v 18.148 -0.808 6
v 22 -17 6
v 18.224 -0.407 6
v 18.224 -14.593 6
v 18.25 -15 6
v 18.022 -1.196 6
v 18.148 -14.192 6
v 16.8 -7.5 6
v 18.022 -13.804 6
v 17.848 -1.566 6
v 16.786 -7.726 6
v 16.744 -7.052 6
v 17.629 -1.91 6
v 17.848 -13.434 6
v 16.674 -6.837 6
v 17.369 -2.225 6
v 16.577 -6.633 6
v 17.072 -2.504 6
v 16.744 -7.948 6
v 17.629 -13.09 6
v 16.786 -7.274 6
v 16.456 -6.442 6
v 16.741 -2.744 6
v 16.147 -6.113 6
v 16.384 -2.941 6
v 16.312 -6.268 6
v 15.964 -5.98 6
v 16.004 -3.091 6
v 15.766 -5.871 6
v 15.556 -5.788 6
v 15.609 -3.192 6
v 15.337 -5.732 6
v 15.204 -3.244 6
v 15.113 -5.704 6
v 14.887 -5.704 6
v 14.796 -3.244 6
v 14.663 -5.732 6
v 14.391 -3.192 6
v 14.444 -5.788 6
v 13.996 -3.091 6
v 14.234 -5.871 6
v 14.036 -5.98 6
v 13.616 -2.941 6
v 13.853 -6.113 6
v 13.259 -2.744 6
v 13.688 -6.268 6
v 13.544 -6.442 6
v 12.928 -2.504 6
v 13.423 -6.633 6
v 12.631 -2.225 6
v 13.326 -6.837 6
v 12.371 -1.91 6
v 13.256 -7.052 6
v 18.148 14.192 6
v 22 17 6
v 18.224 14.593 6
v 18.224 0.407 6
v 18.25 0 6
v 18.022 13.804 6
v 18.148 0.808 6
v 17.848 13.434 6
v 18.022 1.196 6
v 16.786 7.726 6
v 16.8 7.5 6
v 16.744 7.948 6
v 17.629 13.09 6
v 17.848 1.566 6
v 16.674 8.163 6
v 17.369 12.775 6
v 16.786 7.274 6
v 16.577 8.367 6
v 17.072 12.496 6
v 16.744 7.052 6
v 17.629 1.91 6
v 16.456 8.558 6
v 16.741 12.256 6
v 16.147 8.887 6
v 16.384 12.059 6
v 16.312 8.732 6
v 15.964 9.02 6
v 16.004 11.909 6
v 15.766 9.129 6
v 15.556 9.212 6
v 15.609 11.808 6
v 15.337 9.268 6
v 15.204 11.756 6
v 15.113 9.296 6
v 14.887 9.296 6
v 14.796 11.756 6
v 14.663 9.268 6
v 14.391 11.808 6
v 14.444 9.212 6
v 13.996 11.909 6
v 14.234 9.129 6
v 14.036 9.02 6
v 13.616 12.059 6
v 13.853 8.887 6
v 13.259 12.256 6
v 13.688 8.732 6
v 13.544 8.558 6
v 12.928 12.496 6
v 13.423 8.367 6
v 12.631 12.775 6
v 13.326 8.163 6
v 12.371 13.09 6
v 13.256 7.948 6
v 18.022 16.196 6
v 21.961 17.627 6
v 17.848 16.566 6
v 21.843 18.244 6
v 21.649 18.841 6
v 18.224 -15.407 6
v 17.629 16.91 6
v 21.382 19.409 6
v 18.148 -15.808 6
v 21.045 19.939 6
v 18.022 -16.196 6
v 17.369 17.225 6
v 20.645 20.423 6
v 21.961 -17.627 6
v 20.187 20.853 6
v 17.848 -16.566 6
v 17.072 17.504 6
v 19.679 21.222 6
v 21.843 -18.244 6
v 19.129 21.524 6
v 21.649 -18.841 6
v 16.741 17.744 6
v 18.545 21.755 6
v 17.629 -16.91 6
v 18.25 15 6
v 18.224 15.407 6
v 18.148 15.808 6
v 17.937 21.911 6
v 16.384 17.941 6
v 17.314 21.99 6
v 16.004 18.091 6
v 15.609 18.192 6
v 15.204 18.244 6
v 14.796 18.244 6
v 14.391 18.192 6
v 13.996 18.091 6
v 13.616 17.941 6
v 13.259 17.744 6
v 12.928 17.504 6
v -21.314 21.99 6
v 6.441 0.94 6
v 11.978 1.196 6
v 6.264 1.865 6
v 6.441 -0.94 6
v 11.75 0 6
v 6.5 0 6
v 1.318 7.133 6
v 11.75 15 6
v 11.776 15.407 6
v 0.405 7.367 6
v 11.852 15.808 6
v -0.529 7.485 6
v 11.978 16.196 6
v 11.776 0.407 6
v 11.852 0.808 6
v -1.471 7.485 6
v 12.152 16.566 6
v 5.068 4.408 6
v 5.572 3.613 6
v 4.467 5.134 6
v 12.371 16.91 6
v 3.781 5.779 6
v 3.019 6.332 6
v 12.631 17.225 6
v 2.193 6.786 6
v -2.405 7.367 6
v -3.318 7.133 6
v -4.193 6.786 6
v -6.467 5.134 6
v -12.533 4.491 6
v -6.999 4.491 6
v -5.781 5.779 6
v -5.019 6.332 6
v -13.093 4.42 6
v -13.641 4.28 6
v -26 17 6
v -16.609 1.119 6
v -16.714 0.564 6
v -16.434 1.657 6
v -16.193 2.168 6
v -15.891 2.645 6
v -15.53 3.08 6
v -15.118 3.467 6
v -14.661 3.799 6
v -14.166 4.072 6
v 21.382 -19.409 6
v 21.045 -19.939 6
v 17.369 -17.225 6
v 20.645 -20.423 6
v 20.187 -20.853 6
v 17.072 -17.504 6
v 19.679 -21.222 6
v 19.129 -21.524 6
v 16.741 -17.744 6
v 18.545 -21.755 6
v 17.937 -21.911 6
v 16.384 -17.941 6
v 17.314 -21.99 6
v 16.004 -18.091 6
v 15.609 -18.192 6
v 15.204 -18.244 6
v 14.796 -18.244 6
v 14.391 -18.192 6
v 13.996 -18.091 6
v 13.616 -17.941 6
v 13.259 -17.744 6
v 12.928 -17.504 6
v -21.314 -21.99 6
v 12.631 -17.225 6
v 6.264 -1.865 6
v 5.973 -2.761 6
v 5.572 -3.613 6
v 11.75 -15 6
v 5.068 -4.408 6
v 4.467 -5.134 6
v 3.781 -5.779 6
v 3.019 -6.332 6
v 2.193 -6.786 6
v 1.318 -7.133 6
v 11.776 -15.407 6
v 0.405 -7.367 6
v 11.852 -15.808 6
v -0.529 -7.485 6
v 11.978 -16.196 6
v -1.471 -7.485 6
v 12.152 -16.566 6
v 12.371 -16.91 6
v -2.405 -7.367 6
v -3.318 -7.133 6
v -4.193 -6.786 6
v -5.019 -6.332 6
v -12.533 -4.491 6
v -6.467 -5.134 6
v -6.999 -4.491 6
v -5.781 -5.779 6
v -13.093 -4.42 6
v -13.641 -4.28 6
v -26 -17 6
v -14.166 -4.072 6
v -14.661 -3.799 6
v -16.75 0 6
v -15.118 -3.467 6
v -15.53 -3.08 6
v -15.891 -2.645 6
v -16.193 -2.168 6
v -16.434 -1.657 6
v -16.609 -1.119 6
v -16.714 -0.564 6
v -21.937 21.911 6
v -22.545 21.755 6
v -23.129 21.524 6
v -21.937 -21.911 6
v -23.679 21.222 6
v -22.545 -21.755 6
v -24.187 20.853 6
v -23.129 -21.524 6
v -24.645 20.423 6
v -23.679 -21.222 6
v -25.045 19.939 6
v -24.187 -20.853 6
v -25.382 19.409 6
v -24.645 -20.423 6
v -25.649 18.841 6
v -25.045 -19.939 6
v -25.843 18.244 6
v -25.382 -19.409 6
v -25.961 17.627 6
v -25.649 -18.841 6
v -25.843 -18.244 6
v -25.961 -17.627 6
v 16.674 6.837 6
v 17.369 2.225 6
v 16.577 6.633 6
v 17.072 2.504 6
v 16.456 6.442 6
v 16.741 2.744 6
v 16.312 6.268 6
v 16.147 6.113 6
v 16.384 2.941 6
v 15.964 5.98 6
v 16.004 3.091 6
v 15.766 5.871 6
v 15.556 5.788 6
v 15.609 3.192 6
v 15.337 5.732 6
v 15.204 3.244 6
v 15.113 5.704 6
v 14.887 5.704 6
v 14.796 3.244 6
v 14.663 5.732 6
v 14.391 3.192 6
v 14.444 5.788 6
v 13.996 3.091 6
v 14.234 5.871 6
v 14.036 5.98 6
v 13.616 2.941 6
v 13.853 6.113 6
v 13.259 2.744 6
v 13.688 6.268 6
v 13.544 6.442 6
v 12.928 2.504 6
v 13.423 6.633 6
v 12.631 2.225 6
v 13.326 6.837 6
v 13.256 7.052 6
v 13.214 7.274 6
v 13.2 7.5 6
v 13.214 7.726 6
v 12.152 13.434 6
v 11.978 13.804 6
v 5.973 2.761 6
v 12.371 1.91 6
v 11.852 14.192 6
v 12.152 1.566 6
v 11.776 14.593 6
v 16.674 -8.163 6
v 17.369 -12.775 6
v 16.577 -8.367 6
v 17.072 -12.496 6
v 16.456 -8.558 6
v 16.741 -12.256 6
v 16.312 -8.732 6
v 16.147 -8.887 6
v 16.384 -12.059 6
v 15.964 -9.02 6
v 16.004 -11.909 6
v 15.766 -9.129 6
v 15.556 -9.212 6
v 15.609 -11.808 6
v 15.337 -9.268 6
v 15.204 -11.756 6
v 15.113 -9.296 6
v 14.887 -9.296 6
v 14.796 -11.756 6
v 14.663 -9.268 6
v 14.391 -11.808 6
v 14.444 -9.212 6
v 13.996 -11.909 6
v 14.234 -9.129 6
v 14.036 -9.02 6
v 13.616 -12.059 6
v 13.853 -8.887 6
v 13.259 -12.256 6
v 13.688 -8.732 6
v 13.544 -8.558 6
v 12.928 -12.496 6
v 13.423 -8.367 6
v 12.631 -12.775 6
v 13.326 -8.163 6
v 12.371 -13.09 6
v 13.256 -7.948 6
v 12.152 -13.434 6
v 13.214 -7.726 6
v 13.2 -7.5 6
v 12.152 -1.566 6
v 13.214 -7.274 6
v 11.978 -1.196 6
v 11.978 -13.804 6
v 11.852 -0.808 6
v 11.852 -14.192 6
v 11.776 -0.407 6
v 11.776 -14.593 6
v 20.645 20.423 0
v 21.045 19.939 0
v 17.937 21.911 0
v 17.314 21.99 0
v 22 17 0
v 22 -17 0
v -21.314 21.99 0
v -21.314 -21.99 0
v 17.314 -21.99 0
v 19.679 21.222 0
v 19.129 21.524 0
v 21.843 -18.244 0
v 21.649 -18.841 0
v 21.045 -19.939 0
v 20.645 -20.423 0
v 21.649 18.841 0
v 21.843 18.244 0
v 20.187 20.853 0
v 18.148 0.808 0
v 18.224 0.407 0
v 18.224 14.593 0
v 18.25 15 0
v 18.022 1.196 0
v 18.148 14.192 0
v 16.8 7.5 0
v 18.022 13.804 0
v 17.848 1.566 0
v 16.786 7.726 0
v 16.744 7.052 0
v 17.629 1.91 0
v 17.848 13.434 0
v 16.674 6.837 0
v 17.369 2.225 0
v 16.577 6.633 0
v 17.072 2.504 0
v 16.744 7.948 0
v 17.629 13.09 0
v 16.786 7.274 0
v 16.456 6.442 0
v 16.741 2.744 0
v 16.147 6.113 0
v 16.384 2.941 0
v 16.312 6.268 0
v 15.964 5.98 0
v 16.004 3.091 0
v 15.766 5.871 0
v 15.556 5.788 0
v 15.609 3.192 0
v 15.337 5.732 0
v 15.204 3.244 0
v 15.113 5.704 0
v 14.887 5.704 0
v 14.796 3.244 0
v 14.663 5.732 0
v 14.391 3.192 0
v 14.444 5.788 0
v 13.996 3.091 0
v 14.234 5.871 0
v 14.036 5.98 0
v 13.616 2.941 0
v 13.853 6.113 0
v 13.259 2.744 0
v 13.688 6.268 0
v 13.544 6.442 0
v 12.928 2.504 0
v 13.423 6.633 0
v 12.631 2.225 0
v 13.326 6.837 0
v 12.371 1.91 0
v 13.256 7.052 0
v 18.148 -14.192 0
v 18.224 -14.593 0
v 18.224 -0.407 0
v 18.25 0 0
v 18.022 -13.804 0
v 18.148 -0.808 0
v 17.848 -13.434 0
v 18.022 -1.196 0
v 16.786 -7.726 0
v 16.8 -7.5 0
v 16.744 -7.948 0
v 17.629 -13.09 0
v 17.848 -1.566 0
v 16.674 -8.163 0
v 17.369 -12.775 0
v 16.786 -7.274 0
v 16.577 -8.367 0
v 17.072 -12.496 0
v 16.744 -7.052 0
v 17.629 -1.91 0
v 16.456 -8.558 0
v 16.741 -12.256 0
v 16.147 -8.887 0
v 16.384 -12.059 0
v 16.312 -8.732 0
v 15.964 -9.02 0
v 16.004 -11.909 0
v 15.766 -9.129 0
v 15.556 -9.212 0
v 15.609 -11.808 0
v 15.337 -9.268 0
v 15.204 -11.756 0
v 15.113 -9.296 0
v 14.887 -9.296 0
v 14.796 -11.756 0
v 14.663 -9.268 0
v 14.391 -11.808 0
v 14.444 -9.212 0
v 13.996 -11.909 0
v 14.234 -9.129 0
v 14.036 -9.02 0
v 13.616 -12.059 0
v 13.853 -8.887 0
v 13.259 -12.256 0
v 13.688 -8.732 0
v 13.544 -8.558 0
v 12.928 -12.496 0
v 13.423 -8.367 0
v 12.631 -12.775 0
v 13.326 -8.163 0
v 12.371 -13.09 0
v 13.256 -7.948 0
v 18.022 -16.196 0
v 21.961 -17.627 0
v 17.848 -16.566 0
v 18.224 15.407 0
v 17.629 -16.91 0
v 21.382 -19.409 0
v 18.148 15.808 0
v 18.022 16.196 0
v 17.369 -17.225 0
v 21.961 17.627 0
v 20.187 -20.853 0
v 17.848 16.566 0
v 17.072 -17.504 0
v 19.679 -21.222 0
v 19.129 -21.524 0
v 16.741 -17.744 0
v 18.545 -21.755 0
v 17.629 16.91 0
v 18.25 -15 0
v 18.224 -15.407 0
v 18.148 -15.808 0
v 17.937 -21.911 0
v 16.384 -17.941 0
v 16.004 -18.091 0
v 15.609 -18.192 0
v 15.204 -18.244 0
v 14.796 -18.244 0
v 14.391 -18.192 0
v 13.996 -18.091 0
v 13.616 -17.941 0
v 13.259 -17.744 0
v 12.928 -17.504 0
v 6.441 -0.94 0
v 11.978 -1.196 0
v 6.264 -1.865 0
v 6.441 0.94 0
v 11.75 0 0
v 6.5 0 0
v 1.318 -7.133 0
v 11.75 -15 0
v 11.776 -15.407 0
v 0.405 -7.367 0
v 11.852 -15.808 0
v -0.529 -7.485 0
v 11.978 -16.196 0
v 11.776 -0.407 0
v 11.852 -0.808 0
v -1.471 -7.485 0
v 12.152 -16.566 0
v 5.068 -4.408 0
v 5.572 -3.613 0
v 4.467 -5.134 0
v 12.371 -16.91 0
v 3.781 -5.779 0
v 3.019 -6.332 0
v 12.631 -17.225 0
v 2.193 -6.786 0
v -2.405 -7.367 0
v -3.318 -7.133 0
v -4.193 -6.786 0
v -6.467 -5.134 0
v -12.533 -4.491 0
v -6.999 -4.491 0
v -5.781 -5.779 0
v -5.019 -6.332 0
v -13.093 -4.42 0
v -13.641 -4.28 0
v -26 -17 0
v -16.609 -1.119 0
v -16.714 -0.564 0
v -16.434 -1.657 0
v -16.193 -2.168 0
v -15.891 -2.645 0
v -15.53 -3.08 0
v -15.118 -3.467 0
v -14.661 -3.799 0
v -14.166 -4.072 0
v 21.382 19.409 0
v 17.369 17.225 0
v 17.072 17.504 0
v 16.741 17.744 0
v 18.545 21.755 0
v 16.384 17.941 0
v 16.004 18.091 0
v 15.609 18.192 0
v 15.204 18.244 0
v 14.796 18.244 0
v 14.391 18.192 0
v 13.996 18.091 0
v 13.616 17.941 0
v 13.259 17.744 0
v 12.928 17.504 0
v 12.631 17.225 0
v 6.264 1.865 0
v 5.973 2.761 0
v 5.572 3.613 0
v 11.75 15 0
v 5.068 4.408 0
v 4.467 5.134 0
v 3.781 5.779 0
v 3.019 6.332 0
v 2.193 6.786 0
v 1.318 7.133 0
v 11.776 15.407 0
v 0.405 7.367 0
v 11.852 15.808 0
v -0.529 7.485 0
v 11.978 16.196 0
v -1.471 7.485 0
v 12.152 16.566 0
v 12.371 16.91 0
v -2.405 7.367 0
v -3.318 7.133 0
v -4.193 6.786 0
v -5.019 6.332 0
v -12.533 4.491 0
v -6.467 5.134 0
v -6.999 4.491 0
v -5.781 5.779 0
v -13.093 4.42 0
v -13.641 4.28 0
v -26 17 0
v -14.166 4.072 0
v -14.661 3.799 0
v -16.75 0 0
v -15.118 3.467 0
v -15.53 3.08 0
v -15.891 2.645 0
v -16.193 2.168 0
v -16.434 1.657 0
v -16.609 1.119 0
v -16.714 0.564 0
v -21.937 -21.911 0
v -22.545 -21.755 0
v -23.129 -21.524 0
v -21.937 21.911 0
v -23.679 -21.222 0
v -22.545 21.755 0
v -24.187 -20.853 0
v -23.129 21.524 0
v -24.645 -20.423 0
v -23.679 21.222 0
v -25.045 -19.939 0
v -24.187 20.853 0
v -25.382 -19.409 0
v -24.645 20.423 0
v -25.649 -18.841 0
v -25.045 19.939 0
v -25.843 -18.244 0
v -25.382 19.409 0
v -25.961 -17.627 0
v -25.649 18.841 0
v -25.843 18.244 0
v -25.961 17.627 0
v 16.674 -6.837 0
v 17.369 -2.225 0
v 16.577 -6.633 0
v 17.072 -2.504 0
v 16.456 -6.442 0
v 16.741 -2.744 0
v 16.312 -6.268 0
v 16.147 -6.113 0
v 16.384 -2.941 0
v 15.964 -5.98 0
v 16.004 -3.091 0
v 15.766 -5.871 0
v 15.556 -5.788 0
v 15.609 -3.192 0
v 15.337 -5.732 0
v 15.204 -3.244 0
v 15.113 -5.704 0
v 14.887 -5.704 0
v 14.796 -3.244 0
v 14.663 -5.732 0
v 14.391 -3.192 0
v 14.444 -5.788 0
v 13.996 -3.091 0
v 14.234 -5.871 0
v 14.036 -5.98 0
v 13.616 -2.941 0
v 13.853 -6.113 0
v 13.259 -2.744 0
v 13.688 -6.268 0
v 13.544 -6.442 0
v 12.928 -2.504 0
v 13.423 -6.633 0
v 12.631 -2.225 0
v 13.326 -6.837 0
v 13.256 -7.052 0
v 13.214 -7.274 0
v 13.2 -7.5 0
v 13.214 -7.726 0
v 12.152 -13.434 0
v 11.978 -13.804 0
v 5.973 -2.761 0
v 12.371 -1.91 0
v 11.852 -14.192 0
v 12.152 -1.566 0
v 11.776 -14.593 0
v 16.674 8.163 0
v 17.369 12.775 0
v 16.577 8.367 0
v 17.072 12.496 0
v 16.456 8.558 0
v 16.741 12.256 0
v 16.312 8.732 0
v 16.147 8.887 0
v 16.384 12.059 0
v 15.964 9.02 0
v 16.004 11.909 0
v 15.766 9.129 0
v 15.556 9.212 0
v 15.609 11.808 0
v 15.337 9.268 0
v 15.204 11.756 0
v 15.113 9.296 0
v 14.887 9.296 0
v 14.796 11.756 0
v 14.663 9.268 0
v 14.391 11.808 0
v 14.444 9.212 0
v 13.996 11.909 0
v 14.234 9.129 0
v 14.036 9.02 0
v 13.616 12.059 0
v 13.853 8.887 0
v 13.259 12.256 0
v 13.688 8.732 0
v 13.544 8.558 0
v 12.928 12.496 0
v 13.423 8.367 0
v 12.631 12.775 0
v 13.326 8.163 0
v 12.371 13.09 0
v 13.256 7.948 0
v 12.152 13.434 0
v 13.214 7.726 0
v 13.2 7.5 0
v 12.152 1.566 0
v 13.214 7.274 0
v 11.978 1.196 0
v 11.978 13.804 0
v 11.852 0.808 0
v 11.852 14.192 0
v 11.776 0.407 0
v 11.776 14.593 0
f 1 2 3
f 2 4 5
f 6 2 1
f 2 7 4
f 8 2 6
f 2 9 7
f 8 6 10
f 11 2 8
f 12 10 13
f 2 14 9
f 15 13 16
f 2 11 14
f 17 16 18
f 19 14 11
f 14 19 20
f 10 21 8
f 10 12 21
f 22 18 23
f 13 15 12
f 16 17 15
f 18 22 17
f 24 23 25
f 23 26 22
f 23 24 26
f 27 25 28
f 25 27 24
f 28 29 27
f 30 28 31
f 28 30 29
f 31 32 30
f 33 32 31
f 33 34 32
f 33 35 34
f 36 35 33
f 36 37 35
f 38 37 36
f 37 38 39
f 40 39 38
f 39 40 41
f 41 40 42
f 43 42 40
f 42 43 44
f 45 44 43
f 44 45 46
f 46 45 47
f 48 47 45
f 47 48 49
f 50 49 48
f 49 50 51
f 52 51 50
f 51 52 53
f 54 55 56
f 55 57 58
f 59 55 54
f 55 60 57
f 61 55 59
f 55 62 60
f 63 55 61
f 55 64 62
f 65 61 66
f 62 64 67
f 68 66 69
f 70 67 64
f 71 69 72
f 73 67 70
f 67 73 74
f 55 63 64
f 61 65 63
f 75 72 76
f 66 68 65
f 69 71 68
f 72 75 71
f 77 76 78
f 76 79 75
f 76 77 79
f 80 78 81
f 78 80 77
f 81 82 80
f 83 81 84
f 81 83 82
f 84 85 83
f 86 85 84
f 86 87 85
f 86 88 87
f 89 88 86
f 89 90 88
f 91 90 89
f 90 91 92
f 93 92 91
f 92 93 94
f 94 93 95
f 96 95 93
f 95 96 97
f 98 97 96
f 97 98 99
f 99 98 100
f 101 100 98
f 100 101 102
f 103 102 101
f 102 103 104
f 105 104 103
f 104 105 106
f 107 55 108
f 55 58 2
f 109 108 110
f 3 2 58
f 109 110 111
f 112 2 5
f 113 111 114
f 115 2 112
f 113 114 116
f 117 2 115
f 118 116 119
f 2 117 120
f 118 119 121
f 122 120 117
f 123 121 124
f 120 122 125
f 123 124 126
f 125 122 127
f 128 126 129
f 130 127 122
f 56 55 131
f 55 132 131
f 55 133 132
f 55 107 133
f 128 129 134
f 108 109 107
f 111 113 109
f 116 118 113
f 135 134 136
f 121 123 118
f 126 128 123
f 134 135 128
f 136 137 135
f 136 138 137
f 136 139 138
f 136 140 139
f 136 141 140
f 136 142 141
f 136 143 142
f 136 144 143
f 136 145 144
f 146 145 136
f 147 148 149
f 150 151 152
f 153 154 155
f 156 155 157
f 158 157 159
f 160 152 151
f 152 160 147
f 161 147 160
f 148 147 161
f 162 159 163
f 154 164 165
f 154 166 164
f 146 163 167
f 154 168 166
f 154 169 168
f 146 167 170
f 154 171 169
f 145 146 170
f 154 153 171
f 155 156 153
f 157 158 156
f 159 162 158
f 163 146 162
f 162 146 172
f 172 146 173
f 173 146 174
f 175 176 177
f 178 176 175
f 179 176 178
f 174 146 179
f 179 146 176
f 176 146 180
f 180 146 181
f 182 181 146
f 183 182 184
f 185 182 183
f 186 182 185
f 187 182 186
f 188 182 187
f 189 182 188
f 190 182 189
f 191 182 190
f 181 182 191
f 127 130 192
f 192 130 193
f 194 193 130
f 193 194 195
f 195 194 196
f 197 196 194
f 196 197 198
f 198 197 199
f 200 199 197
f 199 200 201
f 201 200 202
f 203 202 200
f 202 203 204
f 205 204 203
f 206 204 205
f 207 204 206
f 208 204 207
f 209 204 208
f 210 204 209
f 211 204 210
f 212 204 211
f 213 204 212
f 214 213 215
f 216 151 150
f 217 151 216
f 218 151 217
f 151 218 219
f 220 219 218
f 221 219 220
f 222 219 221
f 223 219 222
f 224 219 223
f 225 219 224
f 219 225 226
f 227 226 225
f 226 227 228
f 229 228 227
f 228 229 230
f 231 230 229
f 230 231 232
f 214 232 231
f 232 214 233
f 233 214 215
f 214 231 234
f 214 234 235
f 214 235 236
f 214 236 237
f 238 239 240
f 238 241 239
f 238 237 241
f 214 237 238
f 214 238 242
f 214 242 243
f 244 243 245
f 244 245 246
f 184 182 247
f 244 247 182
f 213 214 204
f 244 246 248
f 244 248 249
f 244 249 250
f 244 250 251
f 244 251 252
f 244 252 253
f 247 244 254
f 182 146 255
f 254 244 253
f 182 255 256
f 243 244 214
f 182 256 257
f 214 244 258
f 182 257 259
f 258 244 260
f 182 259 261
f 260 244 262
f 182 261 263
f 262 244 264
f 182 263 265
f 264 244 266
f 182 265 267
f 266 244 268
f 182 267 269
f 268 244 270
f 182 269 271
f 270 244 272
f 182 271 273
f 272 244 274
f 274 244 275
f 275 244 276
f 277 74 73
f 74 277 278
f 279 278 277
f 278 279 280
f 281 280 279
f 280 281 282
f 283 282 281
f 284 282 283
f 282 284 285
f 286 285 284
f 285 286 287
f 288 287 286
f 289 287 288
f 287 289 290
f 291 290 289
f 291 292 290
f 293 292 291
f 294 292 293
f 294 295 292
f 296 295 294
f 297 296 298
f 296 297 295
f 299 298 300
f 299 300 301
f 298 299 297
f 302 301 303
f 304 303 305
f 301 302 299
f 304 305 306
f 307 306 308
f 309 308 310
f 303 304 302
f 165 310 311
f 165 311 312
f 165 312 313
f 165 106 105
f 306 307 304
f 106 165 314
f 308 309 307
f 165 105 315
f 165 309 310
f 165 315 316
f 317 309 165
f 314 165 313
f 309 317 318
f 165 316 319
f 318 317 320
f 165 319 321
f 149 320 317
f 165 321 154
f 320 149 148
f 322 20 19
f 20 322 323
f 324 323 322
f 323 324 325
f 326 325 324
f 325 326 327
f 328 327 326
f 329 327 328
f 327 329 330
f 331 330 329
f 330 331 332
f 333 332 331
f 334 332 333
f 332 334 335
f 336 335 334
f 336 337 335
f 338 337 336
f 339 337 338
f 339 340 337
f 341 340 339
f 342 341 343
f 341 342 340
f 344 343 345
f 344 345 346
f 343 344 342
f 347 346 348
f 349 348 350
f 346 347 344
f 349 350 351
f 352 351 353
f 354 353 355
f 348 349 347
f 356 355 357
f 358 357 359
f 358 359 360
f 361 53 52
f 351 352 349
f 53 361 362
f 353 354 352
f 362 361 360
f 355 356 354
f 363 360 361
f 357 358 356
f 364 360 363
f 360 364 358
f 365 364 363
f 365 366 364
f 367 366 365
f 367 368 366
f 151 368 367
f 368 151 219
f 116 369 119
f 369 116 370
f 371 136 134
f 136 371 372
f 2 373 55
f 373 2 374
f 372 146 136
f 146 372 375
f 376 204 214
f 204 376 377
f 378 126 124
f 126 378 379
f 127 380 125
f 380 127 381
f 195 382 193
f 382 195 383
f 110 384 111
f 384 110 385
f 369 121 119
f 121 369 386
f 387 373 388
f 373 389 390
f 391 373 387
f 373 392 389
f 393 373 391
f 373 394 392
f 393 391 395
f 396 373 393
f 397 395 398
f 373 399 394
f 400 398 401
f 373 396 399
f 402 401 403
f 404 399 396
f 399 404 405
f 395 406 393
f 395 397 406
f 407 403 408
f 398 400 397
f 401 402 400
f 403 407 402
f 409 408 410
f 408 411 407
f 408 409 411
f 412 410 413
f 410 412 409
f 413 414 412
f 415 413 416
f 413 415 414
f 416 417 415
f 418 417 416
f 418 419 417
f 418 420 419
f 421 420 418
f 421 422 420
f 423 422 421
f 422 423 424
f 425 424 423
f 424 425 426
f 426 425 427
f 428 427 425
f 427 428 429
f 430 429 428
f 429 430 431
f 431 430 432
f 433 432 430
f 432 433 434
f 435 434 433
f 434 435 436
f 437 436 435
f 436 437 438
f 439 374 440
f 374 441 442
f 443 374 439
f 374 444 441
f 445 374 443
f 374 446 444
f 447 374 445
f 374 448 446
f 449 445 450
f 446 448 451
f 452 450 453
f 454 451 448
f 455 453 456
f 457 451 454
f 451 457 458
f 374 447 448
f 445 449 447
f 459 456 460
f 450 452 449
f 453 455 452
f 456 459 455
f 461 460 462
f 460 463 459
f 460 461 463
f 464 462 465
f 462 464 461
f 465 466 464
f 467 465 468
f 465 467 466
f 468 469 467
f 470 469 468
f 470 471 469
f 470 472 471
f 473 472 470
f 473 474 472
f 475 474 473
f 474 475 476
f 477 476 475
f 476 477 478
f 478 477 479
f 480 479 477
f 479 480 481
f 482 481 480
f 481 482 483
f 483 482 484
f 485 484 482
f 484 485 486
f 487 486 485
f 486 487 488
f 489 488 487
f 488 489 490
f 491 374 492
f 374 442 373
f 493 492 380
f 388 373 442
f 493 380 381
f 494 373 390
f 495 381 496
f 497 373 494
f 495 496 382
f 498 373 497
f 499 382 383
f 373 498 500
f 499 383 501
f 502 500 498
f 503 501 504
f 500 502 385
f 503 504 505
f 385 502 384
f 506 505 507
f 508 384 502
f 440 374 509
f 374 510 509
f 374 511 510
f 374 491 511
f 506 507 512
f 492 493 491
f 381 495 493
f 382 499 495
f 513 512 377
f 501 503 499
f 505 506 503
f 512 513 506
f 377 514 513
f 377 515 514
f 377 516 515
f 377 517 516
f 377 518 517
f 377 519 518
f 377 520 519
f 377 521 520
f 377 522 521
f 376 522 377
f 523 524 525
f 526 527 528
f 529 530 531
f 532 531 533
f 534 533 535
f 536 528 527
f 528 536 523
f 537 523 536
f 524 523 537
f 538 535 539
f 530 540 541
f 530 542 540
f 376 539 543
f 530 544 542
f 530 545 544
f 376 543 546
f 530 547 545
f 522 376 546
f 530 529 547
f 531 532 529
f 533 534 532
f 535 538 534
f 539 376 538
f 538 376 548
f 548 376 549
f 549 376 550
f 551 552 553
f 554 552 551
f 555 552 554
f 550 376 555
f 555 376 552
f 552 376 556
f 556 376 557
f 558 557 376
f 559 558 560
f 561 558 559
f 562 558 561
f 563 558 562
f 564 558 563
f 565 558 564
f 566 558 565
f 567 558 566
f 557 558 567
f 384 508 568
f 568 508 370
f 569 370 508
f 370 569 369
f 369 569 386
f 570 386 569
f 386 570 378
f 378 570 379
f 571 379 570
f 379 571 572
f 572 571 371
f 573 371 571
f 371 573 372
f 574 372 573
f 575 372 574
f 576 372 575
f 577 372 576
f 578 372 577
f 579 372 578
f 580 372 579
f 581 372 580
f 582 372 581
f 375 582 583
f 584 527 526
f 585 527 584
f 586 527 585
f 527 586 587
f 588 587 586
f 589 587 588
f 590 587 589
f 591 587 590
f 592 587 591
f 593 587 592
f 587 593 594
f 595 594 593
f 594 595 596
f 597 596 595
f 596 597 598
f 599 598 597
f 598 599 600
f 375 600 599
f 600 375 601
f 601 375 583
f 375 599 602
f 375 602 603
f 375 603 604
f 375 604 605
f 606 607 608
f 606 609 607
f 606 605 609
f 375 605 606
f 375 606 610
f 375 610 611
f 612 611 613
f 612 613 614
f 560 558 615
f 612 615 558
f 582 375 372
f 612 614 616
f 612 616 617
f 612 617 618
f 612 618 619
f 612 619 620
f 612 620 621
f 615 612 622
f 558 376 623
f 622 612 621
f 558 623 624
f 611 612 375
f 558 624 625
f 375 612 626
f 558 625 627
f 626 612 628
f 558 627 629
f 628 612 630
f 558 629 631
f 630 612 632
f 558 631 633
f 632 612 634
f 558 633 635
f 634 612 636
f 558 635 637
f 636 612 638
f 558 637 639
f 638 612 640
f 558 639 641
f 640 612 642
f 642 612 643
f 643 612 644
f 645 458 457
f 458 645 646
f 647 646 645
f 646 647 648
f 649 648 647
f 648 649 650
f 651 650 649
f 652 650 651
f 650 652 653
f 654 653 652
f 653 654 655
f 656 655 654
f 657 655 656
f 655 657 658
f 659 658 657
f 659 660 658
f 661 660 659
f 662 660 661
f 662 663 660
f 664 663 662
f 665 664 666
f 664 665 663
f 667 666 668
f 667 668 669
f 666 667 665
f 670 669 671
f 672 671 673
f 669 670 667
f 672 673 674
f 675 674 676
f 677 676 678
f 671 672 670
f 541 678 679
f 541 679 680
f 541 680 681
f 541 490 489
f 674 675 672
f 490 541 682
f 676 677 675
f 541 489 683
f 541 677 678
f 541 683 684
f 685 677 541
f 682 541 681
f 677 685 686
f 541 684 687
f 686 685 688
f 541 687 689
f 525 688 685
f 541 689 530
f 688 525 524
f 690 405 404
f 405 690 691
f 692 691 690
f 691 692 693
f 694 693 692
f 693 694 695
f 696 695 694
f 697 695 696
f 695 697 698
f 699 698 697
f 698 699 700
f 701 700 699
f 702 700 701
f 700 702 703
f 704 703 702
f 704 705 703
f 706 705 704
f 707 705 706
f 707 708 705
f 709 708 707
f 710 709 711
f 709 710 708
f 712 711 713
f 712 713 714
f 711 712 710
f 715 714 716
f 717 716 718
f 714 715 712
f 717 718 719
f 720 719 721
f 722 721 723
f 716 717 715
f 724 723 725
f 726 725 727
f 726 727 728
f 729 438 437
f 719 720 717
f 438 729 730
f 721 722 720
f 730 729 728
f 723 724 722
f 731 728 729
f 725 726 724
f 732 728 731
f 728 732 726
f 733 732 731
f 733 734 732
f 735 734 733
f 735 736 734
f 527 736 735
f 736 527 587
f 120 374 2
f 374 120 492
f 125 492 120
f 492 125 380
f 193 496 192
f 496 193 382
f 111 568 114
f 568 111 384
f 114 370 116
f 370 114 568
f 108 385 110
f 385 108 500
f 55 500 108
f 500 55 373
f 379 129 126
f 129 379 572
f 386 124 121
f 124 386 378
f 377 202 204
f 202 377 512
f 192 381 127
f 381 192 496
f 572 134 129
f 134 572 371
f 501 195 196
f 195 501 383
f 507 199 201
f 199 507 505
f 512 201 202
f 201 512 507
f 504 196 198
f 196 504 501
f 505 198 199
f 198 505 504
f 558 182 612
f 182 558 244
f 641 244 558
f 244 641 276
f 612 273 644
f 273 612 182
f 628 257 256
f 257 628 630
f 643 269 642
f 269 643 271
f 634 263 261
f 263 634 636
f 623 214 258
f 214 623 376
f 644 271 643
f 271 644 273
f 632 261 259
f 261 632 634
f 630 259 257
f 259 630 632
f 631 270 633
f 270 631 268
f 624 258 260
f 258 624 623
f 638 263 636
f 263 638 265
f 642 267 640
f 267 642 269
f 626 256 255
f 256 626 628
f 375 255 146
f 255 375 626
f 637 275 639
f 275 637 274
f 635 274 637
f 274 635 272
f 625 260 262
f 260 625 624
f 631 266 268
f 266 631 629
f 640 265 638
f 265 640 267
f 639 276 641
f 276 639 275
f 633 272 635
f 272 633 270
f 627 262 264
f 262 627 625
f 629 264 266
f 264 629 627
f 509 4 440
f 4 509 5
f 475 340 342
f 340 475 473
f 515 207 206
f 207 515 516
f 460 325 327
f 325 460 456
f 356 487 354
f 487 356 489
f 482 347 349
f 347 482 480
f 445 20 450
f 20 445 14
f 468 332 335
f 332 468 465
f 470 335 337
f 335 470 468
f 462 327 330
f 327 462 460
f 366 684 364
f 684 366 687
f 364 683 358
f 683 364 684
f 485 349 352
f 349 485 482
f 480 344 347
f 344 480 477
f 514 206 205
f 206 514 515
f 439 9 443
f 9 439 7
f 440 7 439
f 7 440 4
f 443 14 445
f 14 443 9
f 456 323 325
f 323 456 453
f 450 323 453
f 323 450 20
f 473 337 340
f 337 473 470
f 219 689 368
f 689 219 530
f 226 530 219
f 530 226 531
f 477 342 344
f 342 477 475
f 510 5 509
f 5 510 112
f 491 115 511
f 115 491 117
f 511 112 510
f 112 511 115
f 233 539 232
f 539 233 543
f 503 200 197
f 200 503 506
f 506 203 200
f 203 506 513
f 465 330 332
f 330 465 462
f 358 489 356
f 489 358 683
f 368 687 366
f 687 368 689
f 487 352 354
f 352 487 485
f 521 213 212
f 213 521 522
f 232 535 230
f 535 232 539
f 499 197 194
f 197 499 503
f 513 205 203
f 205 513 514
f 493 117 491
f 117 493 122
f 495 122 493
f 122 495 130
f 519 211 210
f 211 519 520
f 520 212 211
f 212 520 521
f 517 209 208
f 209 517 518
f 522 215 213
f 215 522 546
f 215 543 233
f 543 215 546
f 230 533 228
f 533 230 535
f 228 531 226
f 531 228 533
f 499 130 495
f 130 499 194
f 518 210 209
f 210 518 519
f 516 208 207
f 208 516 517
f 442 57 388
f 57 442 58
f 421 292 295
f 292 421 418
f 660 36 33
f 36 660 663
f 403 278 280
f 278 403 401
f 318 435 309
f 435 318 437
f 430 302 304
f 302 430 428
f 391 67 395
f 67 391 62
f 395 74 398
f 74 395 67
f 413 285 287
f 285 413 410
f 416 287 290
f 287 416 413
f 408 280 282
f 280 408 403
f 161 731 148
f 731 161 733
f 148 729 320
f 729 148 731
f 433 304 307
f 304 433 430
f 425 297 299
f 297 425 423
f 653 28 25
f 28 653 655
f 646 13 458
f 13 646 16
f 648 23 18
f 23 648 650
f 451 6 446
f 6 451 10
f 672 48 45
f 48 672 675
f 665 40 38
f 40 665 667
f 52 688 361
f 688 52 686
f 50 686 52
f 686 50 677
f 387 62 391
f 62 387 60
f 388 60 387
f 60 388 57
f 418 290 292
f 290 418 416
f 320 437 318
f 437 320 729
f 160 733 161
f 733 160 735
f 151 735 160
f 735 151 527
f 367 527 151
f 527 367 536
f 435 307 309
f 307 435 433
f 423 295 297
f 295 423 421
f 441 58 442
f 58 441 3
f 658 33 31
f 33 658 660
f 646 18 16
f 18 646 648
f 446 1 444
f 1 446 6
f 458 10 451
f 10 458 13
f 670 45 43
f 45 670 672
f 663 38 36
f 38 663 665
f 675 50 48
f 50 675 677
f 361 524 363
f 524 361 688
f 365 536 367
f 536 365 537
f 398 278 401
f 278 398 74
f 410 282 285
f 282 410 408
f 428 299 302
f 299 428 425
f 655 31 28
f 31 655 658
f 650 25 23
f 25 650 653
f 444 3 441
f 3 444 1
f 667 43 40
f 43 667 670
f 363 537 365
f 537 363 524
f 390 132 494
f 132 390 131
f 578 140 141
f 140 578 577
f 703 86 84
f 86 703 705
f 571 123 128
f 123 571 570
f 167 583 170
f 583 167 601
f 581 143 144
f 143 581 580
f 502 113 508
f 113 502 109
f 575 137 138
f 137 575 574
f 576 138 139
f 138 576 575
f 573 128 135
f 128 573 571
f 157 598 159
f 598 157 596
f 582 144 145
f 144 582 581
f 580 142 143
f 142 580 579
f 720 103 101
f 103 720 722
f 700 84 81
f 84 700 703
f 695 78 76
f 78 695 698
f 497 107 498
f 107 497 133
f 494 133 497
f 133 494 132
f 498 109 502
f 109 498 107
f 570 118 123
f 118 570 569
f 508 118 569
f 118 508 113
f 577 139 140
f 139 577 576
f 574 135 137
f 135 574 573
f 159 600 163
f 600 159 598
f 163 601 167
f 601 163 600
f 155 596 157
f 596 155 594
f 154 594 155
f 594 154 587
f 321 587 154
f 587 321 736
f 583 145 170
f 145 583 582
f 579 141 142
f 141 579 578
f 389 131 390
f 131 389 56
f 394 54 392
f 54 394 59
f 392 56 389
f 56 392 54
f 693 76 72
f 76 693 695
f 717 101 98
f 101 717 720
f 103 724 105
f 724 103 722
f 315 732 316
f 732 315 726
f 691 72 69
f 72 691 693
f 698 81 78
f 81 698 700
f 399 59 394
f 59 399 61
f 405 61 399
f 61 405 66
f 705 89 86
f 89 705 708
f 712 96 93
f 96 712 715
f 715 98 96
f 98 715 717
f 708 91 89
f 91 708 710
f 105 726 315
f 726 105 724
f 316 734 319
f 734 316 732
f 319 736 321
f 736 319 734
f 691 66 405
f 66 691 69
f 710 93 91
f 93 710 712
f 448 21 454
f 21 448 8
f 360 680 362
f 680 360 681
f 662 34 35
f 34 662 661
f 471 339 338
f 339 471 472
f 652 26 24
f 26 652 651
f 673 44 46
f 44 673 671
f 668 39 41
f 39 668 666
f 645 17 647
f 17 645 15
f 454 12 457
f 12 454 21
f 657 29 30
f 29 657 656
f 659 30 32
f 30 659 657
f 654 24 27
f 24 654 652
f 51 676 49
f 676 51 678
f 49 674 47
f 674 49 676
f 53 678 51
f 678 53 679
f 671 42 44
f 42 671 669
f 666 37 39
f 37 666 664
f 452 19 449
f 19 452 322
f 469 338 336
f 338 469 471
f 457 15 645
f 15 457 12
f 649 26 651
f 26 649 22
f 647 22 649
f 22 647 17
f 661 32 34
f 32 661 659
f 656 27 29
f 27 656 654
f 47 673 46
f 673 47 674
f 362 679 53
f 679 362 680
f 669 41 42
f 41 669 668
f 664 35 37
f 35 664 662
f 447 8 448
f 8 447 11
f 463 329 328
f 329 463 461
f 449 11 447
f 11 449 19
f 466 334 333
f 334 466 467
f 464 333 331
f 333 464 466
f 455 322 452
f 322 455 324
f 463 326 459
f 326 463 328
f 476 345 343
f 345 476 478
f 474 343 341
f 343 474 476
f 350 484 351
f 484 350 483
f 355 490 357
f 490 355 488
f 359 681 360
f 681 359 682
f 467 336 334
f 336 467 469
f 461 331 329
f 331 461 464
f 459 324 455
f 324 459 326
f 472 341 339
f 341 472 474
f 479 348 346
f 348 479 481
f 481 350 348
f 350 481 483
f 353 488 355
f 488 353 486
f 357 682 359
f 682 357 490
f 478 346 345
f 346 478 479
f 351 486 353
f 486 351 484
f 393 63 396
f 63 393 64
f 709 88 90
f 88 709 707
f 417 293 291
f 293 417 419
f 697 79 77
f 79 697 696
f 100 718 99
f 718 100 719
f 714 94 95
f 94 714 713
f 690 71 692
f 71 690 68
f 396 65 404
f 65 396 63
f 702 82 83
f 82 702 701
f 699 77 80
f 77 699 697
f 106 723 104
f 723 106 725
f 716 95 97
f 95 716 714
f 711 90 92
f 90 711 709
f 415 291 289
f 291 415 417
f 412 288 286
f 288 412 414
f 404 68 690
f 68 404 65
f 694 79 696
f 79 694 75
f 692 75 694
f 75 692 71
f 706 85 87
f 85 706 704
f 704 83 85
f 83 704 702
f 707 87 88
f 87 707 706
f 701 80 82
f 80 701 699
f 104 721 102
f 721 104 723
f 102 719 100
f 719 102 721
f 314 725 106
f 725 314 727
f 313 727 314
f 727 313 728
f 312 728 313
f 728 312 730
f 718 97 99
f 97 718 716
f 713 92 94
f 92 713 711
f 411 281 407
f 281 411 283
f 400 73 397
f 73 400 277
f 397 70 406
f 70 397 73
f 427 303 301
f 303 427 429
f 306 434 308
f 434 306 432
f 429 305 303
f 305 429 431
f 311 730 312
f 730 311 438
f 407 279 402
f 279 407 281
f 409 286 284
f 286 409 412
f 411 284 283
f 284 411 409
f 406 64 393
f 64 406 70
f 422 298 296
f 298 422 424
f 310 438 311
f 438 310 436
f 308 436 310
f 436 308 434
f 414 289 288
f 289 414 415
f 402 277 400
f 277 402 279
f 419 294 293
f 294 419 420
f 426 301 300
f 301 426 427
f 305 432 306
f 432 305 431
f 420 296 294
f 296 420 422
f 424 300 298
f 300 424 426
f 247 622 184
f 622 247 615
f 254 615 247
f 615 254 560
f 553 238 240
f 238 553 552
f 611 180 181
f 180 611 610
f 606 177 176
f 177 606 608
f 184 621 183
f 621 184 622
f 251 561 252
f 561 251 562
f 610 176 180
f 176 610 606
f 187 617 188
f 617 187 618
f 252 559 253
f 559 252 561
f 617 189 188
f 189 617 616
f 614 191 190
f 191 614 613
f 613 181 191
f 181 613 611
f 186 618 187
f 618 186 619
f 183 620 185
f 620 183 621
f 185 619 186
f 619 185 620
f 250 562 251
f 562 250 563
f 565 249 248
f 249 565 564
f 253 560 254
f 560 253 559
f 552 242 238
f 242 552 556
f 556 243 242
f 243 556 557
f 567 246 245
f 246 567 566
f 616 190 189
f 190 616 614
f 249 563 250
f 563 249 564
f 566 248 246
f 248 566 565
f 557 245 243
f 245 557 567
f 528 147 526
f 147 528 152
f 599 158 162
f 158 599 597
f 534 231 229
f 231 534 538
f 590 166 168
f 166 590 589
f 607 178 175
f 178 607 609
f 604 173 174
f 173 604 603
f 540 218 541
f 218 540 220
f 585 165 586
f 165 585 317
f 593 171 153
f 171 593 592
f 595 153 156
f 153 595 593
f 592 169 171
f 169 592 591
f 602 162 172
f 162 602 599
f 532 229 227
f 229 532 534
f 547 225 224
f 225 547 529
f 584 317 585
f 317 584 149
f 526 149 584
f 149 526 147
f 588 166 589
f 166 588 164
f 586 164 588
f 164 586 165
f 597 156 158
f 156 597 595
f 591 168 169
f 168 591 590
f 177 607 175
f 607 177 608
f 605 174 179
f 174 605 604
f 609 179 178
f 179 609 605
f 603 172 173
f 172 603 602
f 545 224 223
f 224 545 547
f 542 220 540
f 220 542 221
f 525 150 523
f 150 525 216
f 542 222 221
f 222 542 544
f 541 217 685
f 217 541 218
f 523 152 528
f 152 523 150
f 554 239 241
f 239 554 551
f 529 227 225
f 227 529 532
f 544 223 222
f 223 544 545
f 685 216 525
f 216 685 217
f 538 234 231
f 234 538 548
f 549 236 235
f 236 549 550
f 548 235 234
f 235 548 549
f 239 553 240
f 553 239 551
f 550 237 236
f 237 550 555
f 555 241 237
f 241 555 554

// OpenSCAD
$fn = 50;


difference() {
	union() {
		hull() {
			translate(v = [-17.0000000000, 17.0000000000, 0]) {
				cylinder(h = 6, r = 5);
			}
			translate(v = [17.0000000000, 17.0000000000, 0]) {
				cylinder(h = 6, r = 5);
			}
			translate(v = [-17.0000000000, -17.0000000000, 0]) {
				cylinder(h = 6, r = 5);
			}
			translate(v = [17.0000000000, -17.0000000000, 0]) {
				cylinder(h = 6, r = 5);
			}
		}
		translate(v = [-4.0000000000, 0, 0]) {
			hull() {
				translate(v = [-17.0000000000, 17.0000000000, 0]) {
					cylinder(h = 6, r = 5);
				}
				translate(v = [17.0000000000, 17.0000000000, 0]) {
					cylinder(h = 6, r = 5);
				}
				translate(v = [-17.0000000000, -17.0000000000, 0]) {
					cylinder(h = 6, r = 5);
				}
				translate(v = [17.0000000000, -17.0000000000, 0]) {
					cylinder(h = 6, r = 5);
				}
			}
		}
	}
	union() {
		translate(v = [15.0000000000, -15.0000000000, 0]) {
			cylinder(h = 6, r = 3.2500000000);
		}
		translate(v = [15.0000000000, 0.0000000000, 0]) {
			cylinder(h = 6, r = 3.2500000000);
		}
		translate(v = [15.0000000000, 15.0000000000, 0]) {
			cylinder(h = 6, r = 3.2500000000);
		}
		translate(v = [15.0000000000, -15.0000000000, 0]) {
			cylinder(h = 6, r = 1.8000000000);
		}
		translate(v = [15.0000000000, -7.5000000000, 0]) {
			cylinder(h = 6, r = 1.8000000000);
		}
		translate(v = [15.0000000000, 0.0000000000, 0]) {
			cylinder(h = 6, r = 1.8000000000);
		}
		translate(v = [15.0000000000, 7.5000000000, 0]) {
			cylinder(h = 6, r = 1.8000000000);
		}
		translate(v = [15.0000000000, 15.0000000000, 0]) {
			cylinder(h = 6, r = 1.8000000000);
		}
		translate(v = [15.0000000000, -15.0000000000, 0]) {
			cylinder(h = 6, r = 1.8000000000);
		}
		translate(v = [15.0000000000, -7.5000000000, 0]) {
			cylinder(h = 6, r = 1.8000000000);
		}
		translate(v = [15.0000000000, 0.0000000000, 0]) {
			cylinder(h = 6, r = 1.8000000000);
		}
		translate(v = [15.0000000000, 7.5000000000, 0]) {
			cylinder(h = 6, r = 1.8000000000);
		}
		translate(v = [15.0000000000, 15.0000000000, 0]) {
			cylinder(h = 6, r = 1.8000000000);
		}
		translate(v = [15.0000000000, -15.0000000000, 0]) {
			cylinder(h = 6, r = 1.8000000000);
		}
		translate(v = [15.0000000000, -7.5000000000, 0]) {
			cylinder(h = 6, r = 1.8000000000);
		}
		translate(v = [15.0000000000, 0.0000000000, 0]) {
			cylinder(h = 6, r = 1.8000000000);
		}
		translate(v = [15.0000000000, 7.5000000000, 0]) {
			cylinder(h = 6, r = 1.8000000000);
		}
		translate(v = [15.0000000000, 15.0000000000, 0]) {
			cylinder(h = 6, r = 1.8000000000);
		}
		translate(v = [-8.5000000000, 0, 0]) {
			hull() {
				translate(v = [-3.7500000000, 0.0000000000, 0]) {
					cylinder(h = 6, r = 4.5000000000);
				}
				translate(v = [3.7500000000, 0.0000000000, 0]) {
					cylinder(h = 6, r = 4.5000000000);
				}
				translate(v = [-3.7500000000, -0.0000000000, 0]) {
					cylinder(h = 6, r = 4.5000000000);
				}
				translate(v = [3.7500000000, -0.0000000000, 0]) {
					cylinder(h = 6, r = 4.5000000000);
				}
			}
		}
		translate(v = [-1.0000000000, 0, 0.0000000000]) {
			cylinder(h = 6, r = 7.5000000000);
		}
	}
}
